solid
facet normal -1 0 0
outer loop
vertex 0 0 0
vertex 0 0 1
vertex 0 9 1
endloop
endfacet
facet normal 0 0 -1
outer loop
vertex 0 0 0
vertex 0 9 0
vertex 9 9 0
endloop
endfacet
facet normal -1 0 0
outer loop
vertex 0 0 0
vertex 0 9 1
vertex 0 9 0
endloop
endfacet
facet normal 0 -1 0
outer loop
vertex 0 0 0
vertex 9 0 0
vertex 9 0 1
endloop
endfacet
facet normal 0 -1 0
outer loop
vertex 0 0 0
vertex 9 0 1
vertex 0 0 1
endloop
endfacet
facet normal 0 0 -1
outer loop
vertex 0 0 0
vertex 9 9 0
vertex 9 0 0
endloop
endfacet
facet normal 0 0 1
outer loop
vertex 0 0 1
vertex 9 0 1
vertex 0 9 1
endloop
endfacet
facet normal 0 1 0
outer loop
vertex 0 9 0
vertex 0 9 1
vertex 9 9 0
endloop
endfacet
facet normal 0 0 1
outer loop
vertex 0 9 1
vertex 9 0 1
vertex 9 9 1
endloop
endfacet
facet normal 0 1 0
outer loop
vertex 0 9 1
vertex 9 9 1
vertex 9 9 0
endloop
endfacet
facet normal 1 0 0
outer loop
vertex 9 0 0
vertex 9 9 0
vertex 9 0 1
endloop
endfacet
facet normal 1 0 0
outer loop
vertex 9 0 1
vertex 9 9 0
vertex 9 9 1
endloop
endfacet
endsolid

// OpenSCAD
/* Warning, this is a very basic generator with a lot of approximation 
input data : [VQFN, 5LX, 9x9x1.0mm, 64, , F, C04-00483F]
generated by com.zoubworld.electronics.cad.model3d.Basic
Date : Sun Feb 15 10:50:48 CET 2026
*/

//body
color("black")
translate([0,0,0])
cube([9.0,9.0,1.0], center=false);
